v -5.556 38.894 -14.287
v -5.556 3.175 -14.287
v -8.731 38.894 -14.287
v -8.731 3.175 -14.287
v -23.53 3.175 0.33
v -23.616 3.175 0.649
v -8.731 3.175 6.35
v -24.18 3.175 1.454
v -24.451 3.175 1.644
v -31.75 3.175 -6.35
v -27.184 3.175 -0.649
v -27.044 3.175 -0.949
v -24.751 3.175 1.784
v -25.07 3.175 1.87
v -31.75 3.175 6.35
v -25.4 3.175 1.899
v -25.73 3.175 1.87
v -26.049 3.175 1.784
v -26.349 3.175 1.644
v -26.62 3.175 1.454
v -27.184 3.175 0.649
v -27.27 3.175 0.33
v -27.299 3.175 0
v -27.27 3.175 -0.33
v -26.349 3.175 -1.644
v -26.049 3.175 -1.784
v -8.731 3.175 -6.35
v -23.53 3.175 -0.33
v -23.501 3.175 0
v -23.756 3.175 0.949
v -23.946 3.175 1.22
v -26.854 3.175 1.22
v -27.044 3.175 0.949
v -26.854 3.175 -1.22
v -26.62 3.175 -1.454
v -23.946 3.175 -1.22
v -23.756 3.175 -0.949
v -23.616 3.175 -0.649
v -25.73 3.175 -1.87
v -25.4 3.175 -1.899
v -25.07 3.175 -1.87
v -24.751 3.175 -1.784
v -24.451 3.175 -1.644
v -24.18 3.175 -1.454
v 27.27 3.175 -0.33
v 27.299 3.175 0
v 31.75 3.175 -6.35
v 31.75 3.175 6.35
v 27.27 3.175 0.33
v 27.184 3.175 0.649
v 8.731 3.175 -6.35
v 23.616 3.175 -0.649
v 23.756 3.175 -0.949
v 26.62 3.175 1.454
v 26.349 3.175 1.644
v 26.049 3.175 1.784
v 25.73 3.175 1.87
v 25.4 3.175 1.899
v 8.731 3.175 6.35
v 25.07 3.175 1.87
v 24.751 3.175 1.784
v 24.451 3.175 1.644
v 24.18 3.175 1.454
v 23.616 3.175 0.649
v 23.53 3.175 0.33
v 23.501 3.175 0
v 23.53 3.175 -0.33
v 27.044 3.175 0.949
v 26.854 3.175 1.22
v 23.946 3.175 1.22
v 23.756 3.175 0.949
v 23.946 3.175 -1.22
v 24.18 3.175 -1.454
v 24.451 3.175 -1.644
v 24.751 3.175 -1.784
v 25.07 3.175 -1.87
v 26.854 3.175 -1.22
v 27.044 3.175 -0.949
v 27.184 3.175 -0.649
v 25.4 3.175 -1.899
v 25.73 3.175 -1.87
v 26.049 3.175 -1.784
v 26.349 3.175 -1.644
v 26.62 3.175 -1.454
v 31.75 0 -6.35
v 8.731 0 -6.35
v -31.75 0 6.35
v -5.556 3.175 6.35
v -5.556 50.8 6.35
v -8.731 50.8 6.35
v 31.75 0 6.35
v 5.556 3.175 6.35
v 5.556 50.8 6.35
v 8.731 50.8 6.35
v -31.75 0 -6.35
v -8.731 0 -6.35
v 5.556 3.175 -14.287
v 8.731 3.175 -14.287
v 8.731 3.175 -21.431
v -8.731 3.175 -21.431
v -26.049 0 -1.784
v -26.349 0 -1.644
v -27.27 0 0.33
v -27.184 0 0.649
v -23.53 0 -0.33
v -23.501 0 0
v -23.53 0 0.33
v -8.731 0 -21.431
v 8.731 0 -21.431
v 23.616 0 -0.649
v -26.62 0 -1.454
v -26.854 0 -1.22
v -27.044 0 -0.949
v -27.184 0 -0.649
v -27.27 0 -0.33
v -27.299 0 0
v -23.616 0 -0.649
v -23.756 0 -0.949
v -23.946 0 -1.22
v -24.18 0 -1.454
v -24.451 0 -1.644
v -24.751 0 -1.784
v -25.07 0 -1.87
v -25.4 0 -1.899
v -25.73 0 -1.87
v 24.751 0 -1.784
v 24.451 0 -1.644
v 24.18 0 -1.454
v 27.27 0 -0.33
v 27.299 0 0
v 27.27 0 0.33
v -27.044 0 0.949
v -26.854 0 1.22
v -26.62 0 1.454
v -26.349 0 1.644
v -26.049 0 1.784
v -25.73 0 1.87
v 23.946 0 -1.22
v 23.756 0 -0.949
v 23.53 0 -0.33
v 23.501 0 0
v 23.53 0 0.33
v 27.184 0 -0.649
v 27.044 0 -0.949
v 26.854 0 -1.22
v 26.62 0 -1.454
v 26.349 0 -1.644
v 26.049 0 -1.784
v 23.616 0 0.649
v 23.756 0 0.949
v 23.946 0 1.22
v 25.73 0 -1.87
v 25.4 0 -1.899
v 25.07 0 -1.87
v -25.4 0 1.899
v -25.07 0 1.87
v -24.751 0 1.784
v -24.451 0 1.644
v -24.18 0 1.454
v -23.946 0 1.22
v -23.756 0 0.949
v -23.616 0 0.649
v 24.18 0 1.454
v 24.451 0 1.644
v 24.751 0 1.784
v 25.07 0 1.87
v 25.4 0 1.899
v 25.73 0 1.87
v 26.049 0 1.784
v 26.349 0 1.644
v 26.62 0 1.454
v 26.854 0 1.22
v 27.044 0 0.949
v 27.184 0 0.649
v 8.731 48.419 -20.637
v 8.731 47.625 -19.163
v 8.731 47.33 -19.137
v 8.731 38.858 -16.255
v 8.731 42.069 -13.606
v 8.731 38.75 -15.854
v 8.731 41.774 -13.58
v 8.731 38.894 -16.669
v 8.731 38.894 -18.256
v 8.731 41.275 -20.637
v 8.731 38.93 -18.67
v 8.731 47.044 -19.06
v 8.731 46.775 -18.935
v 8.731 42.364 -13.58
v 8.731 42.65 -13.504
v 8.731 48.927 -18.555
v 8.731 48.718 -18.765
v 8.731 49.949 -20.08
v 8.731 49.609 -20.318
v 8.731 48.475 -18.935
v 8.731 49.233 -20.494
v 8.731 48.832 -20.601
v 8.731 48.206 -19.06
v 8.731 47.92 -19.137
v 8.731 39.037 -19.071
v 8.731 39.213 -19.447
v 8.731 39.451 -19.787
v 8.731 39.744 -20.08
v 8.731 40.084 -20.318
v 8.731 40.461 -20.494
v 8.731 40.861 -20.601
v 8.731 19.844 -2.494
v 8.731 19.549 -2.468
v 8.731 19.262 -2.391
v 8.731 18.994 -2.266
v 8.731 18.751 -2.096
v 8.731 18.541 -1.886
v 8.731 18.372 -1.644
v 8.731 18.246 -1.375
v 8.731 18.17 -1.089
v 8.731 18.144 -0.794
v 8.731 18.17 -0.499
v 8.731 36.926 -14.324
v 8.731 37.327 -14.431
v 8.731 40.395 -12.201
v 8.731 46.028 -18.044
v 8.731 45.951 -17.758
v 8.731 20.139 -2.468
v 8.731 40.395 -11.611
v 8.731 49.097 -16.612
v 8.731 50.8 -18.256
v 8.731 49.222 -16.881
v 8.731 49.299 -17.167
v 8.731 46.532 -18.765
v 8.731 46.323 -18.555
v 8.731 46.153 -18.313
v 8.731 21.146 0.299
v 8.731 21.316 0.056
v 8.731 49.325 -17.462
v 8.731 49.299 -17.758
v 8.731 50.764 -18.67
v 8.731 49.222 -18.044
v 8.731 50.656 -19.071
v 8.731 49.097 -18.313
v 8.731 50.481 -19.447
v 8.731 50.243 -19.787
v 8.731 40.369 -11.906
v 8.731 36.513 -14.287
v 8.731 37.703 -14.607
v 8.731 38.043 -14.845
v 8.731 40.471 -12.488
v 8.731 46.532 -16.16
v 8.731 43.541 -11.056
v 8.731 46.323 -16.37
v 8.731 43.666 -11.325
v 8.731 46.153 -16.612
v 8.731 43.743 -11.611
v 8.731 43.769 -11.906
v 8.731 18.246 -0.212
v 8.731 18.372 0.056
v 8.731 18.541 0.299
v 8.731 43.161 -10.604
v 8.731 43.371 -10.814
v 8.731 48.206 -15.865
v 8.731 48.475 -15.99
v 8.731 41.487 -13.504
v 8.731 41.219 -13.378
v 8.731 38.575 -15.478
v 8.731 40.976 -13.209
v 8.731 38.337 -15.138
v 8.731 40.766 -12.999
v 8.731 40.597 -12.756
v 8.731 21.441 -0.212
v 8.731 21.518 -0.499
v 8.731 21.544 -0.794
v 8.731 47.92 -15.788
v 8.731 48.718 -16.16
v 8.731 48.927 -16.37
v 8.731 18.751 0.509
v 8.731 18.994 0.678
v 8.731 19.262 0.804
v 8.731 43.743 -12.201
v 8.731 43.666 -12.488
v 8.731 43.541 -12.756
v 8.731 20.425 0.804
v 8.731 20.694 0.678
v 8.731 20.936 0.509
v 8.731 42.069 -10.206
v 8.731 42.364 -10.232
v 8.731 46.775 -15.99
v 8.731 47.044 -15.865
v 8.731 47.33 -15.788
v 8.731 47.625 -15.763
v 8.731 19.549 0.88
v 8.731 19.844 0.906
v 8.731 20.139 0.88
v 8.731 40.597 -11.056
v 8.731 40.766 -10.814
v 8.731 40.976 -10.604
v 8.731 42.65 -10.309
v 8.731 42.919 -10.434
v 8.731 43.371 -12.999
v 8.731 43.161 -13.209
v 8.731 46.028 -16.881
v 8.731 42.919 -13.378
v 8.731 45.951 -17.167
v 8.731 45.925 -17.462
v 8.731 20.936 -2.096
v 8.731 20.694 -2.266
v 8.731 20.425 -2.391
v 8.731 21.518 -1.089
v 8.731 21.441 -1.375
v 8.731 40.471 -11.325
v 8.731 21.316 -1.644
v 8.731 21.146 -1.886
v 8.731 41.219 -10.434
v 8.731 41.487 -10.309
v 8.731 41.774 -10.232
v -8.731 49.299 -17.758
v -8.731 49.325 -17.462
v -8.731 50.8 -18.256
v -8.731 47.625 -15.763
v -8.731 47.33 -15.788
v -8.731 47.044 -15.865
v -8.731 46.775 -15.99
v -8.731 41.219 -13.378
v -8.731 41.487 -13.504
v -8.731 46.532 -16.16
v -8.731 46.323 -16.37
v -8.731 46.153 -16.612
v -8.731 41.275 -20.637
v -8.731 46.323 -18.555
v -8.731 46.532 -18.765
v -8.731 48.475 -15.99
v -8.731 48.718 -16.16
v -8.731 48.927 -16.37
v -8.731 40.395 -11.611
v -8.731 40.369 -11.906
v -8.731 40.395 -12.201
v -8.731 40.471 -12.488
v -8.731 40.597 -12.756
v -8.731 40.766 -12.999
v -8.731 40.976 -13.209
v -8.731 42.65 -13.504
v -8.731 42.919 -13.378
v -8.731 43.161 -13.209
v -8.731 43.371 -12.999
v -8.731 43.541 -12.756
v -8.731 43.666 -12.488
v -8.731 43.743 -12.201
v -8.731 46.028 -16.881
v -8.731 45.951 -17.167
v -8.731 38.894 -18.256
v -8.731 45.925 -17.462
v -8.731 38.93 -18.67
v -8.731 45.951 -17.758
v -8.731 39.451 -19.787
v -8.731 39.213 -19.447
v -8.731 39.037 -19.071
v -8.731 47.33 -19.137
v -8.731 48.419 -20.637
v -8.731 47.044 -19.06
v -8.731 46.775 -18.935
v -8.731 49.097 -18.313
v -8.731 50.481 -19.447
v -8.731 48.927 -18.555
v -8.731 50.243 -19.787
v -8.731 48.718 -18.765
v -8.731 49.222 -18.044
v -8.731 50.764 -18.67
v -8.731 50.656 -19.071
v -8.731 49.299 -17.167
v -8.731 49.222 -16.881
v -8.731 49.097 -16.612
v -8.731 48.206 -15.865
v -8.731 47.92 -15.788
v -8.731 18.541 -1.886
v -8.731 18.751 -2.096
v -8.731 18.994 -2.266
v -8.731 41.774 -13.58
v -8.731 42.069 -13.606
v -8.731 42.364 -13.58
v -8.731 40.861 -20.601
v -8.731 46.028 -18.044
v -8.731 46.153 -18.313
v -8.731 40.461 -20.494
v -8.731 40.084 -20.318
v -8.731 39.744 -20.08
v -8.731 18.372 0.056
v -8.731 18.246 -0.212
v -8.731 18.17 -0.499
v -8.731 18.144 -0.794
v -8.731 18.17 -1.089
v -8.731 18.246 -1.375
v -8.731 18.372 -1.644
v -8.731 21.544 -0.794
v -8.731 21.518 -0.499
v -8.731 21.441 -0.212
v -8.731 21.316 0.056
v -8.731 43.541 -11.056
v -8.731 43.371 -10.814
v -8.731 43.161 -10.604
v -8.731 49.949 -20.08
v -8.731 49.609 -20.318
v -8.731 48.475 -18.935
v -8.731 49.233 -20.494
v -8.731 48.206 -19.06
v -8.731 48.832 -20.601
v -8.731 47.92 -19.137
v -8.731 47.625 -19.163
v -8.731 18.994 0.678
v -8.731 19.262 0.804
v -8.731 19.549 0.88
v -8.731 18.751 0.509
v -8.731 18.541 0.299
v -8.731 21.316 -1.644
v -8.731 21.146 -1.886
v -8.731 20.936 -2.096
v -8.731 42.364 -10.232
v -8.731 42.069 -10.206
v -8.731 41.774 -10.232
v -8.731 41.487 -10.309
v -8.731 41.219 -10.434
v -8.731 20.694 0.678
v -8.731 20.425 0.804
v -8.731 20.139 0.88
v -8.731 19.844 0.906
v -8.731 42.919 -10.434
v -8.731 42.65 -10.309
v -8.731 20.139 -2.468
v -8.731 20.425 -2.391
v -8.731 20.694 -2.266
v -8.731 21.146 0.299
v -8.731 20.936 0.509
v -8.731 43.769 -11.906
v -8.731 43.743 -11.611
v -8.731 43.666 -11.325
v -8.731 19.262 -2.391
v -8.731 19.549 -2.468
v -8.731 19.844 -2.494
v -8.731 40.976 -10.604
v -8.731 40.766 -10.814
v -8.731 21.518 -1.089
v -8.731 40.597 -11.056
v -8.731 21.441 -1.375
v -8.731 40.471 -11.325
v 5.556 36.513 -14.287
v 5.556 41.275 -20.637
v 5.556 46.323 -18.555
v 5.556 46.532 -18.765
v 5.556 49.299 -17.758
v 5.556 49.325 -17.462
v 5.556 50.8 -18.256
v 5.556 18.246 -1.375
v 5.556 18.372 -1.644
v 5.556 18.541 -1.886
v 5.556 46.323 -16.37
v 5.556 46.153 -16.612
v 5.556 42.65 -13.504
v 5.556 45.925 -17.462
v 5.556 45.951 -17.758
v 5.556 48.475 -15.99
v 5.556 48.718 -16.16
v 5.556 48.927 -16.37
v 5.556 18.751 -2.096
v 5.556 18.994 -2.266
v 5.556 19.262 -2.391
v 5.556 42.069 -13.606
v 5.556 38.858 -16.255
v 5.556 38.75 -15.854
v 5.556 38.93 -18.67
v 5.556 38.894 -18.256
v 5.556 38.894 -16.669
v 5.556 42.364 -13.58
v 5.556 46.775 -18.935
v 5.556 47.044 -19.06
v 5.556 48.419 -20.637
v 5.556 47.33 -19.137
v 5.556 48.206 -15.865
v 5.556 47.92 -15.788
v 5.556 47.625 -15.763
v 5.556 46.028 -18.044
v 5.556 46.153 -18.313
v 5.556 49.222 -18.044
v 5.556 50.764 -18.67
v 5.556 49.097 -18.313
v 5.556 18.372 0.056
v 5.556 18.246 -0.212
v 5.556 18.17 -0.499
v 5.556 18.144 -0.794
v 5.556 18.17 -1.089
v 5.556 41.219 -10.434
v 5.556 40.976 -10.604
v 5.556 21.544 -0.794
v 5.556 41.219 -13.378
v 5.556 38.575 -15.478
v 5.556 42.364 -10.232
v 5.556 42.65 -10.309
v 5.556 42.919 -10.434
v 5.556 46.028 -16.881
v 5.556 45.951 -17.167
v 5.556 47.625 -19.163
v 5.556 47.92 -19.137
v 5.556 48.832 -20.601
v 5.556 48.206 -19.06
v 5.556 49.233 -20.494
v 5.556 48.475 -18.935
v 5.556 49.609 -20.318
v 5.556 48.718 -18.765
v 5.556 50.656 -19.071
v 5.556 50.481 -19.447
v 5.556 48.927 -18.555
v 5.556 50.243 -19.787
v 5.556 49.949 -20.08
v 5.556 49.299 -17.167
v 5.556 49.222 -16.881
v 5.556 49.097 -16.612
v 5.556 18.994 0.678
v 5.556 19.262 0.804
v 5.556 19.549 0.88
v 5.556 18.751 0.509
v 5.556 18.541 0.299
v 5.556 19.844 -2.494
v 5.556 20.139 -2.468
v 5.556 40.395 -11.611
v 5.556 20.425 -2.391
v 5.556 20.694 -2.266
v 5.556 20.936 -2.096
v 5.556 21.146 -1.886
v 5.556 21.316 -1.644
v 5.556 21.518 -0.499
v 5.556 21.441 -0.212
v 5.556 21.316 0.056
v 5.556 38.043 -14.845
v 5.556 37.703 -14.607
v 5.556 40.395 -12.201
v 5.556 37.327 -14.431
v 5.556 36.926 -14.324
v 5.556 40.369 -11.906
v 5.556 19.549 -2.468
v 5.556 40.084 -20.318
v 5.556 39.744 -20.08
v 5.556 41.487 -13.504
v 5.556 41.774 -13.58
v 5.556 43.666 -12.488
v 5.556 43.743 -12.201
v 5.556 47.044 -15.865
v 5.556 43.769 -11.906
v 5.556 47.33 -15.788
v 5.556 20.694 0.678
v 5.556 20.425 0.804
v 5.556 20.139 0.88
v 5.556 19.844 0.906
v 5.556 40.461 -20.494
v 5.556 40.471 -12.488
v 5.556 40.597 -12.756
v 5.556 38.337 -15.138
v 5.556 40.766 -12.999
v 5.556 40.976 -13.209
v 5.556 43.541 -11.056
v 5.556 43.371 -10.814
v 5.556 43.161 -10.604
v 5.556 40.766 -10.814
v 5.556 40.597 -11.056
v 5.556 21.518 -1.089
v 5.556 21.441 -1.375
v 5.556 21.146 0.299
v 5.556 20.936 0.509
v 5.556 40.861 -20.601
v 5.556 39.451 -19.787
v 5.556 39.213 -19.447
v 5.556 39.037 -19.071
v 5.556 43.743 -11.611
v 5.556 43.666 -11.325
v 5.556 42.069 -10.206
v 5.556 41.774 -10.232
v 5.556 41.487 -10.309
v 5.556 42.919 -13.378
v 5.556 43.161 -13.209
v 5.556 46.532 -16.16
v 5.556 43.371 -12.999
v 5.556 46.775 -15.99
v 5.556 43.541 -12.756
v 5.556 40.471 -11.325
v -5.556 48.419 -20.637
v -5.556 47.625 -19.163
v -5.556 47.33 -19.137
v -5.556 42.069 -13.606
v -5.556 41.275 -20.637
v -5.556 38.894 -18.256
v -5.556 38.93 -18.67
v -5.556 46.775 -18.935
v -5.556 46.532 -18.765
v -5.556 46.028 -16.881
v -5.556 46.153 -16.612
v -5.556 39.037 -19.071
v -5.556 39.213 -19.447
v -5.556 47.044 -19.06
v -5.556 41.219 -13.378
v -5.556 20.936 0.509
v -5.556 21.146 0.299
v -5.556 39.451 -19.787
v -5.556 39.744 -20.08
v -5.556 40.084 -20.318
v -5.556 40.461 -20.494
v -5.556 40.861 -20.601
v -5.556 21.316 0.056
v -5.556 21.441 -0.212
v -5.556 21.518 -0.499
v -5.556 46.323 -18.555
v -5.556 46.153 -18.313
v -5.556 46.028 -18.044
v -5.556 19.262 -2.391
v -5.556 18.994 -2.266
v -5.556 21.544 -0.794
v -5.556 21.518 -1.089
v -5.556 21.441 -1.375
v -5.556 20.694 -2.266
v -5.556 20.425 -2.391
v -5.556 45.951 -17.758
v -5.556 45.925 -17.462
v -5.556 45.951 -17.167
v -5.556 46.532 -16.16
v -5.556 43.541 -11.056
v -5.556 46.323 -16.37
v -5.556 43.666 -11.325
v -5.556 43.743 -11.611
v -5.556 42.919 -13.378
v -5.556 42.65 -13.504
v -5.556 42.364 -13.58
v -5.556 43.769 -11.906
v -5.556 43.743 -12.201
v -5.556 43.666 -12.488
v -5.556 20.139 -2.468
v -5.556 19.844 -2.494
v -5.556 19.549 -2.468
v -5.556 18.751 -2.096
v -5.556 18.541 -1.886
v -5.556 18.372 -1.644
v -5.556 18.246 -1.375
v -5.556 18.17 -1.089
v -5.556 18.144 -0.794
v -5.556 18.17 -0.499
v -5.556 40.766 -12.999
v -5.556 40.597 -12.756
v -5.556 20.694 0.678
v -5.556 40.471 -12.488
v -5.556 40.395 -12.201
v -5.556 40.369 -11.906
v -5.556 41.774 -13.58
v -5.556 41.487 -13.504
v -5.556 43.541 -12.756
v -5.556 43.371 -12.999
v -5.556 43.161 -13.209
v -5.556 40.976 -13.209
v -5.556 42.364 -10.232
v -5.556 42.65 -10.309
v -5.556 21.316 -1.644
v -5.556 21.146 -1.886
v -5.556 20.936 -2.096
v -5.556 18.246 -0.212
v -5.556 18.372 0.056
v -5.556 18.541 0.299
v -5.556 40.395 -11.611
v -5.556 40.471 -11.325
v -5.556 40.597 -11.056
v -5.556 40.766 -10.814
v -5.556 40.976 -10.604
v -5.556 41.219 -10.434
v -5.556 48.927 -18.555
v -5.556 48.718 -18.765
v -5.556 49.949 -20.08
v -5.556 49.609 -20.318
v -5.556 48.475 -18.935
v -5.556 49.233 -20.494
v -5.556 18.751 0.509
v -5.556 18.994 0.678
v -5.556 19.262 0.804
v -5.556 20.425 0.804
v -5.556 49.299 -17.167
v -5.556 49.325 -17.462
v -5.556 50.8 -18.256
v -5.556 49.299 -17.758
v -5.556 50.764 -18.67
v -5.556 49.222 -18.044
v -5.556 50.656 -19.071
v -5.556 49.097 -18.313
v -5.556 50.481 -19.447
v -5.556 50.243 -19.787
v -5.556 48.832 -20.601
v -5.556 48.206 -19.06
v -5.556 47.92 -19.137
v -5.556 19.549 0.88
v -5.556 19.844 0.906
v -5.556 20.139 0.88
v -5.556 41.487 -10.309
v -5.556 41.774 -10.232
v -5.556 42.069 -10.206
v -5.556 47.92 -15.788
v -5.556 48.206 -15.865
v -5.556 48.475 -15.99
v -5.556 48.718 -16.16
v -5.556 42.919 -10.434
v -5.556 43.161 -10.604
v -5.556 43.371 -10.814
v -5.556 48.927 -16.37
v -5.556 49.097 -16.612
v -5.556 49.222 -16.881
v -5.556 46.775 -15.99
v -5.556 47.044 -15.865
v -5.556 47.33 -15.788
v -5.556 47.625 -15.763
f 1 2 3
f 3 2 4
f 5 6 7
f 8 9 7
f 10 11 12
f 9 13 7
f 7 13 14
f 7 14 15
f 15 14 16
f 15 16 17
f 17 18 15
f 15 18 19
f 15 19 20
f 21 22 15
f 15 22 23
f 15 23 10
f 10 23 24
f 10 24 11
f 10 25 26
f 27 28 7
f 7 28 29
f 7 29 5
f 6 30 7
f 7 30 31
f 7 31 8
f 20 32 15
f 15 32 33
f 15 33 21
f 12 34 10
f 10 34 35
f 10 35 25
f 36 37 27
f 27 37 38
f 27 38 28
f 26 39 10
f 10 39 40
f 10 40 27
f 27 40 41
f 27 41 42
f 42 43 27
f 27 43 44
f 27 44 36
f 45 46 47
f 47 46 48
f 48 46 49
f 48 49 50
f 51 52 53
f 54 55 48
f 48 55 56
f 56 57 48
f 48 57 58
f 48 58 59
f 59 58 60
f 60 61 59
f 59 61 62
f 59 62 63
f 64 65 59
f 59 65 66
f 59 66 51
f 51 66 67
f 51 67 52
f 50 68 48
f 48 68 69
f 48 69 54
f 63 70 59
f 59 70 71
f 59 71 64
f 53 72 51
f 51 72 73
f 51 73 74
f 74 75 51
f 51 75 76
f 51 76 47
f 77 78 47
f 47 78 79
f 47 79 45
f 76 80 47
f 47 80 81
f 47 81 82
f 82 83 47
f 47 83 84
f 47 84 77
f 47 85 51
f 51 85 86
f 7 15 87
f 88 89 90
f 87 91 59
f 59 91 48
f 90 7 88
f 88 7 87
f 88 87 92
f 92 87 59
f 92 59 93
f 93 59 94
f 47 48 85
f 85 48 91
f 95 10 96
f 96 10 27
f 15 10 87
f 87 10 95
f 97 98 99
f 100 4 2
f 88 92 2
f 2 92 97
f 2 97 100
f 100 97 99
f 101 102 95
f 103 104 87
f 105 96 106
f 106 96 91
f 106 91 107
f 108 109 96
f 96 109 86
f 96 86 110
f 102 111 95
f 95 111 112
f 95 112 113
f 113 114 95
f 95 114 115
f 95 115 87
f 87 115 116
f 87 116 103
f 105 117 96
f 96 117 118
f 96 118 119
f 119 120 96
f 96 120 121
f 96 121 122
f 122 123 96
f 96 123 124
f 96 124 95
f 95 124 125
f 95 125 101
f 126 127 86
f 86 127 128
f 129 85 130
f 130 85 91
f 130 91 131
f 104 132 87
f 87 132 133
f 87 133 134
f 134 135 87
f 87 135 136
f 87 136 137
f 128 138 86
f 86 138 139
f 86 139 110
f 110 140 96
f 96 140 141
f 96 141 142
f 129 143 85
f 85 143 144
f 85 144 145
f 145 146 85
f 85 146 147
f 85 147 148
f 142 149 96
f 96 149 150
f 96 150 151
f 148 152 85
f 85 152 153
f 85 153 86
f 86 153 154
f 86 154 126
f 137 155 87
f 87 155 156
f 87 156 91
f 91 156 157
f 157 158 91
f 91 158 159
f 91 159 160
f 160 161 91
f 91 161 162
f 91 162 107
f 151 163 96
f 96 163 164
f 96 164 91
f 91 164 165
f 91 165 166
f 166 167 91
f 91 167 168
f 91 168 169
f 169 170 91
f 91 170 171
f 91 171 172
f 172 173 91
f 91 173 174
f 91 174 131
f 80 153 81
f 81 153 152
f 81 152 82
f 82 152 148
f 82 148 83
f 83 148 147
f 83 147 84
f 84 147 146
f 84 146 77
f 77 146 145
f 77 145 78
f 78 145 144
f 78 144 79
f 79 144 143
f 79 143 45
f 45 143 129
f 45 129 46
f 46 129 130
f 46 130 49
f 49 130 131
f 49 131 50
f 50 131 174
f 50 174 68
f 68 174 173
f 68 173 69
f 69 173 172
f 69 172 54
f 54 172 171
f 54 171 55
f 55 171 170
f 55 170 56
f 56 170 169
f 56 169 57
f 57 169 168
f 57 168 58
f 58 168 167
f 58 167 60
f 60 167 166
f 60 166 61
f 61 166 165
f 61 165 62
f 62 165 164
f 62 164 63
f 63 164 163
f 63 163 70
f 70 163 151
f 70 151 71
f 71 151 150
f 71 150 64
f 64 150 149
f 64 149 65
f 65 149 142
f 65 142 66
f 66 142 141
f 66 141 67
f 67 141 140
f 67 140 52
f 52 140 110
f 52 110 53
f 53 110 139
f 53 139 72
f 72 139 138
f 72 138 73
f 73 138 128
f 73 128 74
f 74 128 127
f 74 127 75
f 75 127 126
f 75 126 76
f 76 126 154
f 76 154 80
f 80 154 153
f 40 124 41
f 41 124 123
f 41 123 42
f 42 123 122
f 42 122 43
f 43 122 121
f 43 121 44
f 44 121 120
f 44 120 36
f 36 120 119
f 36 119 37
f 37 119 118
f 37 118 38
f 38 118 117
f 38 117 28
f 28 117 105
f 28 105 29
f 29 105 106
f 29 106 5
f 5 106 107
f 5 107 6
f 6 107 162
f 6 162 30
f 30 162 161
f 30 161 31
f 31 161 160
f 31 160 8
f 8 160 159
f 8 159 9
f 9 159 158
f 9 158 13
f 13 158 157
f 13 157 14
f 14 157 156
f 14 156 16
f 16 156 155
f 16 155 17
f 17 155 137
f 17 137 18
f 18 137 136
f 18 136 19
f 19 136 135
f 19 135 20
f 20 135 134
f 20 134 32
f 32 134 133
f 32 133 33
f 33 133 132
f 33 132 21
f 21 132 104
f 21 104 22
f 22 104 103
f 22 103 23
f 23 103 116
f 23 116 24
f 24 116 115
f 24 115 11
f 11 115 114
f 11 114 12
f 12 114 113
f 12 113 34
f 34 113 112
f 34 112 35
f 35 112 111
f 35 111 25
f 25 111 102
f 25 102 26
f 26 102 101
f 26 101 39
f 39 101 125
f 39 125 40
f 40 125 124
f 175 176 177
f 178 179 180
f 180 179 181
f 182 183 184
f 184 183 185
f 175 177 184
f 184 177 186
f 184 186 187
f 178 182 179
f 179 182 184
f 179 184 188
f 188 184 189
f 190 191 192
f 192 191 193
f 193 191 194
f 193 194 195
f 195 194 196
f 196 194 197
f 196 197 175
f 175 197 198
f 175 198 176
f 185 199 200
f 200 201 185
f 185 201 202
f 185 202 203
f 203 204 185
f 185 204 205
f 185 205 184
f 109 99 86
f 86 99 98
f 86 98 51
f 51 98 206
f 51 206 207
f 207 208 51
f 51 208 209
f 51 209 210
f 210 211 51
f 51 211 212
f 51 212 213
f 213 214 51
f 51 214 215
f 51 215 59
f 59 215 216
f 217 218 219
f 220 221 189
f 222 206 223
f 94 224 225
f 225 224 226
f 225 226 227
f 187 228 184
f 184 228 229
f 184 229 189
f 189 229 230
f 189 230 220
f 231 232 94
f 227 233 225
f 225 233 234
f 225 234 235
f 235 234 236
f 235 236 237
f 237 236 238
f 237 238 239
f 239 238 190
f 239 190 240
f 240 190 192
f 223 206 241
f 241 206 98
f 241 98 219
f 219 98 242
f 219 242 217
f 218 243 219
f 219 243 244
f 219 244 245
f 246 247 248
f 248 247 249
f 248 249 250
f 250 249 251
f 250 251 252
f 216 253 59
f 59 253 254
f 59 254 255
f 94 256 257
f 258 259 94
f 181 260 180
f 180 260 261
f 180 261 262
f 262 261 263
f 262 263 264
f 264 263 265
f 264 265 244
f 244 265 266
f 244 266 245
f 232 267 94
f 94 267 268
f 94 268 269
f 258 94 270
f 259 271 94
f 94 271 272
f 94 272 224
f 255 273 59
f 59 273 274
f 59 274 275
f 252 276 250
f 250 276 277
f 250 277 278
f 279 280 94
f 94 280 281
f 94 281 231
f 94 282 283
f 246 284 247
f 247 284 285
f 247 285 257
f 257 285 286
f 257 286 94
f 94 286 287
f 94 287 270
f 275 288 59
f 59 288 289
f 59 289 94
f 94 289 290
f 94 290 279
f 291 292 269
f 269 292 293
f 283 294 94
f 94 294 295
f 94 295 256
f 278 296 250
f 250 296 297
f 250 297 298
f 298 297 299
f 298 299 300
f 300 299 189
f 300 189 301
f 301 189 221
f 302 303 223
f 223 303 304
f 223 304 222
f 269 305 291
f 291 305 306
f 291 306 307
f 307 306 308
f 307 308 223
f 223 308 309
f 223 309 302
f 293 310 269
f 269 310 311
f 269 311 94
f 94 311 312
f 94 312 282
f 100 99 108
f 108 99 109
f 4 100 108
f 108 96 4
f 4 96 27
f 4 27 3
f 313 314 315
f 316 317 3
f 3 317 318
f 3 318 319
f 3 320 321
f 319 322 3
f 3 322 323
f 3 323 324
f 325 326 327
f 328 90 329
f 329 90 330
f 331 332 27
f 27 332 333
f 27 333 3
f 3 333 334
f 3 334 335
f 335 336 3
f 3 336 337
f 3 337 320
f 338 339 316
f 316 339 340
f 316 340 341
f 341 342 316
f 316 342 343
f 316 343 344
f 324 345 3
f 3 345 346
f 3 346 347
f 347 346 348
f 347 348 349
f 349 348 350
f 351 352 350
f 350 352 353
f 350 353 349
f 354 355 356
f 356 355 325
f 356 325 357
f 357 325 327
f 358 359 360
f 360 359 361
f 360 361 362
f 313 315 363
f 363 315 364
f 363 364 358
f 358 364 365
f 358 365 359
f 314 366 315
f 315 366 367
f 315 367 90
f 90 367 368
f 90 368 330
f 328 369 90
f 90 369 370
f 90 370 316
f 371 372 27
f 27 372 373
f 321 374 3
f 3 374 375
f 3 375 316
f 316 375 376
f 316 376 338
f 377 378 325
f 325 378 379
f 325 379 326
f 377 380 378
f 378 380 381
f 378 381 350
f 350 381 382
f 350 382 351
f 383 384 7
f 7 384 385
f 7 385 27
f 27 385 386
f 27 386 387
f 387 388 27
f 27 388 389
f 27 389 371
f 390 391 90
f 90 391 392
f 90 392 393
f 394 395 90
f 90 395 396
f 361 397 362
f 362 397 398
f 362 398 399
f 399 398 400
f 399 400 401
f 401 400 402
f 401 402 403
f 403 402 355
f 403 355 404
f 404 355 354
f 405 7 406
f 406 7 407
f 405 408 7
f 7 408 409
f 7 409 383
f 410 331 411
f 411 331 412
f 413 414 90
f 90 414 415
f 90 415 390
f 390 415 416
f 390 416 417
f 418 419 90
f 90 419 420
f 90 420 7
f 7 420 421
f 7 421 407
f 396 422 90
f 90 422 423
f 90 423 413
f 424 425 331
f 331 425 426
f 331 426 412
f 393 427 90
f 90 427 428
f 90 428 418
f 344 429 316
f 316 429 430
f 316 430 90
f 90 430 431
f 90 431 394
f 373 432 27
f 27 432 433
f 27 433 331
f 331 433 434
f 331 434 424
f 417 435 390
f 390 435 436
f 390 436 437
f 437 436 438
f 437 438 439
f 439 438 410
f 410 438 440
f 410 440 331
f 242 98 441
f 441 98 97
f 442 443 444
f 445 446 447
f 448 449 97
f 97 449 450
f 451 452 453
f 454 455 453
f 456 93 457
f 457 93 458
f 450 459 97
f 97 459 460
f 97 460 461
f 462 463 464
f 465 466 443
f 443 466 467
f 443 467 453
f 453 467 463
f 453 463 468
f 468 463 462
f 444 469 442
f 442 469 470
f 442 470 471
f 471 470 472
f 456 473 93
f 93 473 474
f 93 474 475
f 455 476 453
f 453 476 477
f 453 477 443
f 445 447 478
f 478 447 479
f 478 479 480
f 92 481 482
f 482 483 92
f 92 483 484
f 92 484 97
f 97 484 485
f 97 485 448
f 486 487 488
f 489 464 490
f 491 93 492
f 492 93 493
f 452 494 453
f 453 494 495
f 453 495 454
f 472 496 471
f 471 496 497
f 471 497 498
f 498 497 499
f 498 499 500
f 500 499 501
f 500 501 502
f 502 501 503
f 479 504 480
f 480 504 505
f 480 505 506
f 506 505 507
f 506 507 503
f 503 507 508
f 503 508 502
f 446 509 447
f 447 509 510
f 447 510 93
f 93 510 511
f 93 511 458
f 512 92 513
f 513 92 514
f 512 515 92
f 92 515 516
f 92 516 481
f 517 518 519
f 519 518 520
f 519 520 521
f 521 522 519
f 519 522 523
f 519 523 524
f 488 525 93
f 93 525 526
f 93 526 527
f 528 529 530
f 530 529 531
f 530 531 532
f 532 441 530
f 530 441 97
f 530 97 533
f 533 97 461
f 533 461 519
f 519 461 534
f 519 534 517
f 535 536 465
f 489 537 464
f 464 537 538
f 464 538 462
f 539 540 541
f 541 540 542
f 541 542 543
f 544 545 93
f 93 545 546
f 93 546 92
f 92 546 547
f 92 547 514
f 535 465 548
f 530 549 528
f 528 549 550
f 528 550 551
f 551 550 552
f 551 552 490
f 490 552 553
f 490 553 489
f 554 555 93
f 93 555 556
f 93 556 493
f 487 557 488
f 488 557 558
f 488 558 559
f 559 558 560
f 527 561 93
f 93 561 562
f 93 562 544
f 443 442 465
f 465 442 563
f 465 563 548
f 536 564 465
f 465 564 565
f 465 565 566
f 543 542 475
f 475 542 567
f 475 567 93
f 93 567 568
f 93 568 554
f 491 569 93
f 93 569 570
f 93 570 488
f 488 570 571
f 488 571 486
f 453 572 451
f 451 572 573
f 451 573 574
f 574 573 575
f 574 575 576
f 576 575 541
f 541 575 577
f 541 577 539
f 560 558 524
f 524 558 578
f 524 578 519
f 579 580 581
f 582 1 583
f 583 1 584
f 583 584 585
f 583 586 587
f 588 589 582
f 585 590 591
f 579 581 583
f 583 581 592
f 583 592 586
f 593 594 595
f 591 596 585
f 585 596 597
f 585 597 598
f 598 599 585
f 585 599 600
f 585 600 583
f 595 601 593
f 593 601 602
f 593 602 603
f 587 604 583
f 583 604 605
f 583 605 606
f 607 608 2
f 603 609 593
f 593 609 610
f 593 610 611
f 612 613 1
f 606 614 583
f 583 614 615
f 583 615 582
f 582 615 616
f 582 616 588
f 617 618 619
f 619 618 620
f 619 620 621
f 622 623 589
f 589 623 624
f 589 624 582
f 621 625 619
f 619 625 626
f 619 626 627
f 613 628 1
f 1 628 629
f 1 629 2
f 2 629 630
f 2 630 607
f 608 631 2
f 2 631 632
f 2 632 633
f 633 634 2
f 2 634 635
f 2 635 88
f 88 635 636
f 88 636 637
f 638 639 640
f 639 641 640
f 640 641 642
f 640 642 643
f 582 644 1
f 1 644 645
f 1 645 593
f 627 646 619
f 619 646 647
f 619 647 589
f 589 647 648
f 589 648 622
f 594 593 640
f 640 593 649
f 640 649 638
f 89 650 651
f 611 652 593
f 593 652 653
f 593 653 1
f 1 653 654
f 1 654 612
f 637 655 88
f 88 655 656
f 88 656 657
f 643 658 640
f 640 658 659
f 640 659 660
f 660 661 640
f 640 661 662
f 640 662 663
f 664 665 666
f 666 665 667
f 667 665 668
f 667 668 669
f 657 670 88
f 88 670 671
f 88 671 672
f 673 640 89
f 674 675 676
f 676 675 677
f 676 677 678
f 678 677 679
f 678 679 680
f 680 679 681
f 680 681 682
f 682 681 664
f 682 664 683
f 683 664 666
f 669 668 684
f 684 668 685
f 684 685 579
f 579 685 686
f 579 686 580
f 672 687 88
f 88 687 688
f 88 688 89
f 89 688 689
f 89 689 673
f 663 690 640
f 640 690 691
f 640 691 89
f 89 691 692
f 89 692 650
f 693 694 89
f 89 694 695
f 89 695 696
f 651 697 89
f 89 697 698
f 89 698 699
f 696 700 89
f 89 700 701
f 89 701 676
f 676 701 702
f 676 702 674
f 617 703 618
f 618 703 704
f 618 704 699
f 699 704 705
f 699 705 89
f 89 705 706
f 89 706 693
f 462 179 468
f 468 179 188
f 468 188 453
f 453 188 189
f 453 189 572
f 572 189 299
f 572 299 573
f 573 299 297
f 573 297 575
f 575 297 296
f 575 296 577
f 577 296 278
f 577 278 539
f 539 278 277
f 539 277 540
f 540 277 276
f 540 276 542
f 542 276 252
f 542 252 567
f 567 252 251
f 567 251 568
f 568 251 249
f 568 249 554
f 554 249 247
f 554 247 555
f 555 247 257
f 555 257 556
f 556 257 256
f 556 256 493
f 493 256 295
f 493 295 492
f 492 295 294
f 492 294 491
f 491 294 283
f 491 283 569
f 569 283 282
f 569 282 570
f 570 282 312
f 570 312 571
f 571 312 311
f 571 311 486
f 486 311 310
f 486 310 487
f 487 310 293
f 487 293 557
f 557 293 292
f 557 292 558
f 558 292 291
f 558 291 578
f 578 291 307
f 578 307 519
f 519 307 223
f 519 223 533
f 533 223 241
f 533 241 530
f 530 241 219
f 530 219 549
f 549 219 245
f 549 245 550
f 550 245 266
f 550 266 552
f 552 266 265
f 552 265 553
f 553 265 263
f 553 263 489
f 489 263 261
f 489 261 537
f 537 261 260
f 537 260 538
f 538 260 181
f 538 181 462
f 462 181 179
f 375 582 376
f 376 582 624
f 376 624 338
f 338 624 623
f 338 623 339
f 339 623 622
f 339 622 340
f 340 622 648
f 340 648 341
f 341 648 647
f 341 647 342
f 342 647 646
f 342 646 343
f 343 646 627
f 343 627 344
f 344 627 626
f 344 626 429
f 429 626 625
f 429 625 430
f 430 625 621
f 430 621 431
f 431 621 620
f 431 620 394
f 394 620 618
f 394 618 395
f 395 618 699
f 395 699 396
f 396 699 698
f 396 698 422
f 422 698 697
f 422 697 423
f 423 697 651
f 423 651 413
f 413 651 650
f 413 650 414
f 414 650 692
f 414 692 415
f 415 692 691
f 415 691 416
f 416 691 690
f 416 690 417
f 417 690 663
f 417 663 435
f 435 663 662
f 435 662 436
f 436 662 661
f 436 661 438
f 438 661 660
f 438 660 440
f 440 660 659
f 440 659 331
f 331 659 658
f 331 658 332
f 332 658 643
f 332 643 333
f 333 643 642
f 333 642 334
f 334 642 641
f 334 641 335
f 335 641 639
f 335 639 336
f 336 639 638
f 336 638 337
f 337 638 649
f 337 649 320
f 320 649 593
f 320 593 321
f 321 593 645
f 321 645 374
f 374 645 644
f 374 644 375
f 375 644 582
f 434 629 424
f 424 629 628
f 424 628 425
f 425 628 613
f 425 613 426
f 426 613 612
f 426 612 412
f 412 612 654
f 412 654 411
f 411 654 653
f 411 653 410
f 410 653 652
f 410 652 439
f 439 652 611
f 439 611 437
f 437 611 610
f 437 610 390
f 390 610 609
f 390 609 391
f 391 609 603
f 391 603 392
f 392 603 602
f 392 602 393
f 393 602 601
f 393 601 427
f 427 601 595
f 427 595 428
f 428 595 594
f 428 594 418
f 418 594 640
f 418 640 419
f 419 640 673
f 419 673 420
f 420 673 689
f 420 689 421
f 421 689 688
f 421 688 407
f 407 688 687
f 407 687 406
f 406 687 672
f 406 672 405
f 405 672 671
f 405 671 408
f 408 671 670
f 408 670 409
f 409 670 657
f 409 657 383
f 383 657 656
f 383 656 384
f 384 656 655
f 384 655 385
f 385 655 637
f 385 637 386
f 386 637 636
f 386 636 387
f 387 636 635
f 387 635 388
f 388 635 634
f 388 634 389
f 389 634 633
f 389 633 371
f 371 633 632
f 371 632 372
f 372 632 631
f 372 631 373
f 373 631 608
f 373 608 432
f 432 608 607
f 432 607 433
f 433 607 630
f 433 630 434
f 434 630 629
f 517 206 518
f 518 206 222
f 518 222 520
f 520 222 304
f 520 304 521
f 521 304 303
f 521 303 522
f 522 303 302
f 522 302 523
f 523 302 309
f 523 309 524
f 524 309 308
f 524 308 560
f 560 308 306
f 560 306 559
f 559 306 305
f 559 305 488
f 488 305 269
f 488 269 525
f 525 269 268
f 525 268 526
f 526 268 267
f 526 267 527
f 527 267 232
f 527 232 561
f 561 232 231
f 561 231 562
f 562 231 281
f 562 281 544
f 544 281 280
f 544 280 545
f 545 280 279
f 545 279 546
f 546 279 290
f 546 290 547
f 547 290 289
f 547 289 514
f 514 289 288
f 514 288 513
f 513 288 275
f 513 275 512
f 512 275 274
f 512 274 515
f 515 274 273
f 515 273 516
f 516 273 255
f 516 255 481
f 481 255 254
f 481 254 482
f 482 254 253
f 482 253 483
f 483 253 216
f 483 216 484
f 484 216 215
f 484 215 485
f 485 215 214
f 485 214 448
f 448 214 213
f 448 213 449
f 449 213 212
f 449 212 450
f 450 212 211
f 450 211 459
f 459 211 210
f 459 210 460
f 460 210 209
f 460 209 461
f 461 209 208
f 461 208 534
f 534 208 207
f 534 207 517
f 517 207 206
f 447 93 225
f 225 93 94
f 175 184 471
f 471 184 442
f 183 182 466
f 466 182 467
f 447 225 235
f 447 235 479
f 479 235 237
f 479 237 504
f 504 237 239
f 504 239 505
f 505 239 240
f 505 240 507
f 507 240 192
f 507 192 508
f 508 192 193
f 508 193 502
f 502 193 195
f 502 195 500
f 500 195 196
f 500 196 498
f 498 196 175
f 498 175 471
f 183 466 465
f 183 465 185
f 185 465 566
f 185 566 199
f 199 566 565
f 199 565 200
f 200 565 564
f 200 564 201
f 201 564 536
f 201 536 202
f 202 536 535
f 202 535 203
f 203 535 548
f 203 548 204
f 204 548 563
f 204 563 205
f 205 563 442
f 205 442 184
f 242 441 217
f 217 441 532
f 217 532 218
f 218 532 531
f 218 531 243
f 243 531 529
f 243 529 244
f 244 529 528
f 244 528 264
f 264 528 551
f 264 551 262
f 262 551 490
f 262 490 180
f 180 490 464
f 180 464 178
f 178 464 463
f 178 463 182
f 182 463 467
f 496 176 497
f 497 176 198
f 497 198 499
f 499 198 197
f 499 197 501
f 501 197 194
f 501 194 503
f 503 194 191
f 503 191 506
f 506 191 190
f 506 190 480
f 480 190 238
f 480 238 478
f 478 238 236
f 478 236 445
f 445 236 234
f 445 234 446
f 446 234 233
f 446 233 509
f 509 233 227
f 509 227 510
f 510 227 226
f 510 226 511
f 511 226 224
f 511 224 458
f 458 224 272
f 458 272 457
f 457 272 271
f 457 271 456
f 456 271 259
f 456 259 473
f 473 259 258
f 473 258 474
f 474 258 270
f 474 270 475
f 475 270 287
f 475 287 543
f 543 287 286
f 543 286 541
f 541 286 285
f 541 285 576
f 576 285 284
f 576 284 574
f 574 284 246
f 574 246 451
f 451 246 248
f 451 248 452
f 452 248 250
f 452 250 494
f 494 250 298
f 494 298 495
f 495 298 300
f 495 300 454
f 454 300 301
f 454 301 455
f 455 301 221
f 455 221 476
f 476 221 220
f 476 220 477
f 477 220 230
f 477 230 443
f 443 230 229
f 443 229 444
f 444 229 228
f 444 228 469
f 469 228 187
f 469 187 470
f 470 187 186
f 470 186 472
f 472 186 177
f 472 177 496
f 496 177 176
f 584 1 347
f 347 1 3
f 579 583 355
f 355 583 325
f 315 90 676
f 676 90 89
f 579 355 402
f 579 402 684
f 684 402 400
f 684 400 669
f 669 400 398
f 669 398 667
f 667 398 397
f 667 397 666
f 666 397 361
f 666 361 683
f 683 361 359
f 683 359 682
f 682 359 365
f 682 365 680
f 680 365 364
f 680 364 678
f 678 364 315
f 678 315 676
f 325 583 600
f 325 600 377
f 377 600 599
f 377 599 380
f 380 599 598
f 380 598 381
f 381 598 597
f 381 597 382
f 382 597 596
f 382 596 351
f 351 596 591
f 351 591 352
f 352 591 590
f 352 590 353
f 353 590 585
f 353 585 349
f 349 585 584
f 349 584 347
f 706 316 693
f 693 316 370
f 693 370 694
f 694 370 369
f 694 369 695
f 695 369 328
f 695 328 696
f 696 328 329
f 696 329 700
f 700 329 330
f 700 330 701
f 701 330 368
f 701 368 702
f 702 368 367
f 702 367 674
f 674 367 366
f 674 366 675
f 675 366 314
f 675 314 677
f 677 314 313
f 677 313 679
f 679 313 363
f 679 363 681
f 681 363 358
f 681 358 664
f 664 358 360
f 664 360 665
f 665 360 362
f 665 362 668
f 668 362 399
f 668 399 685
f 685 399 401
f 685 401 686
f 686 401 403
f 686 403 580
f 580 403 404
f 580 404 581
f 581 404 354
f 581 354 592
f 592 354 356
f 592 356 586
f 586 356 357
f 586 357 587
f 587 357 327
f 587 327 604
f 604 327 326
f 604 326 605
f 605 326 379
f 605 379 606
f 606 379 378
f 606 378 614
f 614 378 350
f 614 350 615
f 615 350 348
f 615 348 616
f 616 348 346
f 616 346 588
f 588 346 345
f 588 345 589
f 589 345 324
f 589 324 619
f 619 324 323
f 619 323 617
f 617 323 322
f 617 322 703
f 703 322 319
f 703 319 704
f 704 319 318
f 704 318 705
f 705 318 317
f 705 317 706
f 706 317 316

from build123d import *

# Parameters (mm, degrees)
SKETCH1_W             = 63.5
SKETCH1_H             = 6.35
BOSS_EXTRUDE1_DEPTH   = 3.175
F_6_CLEARANCE_HOLE1_D = 3.7973
SKETCH7_W             = 17.4625
SKETCH7_H             = 27.78125
BOSS_EXTRUDE2_DEPTH   = 3.175
SKETCH9_W             = 3.175
SKETCH9_H             = 20.6375
BOSS_EXTRUDE3_DEPTH   = 44.45
M3_CLEARANCE_HOLE1_D  = 3.4
SKETCH14_W            = 20.6375
SKETCH14_H            = 6.35
BOSS_EXTRUDE4_DEPTH   = 3.175
FILLET3_R             = 2.38125
M3_CLEARANCE_HOLE2_D  = 3.4
MIRROR1_START         = -8.73125
MIRROR1_OUTLINE_R     = 1.7
MIRROR1_DEPTH         = 3.175


# Read off the part's stored shape, not the designer's step: Mirror1
with BuildPart() as part:
    # Sketch1 → Boss-Extrude1 (new body)
    with BuildSketch(Plane(origin=(0, 0, 0), x_dir=(1, 0, 0), z_dir=(0, 1, 0))):
        with Locations((0, -3.175)):
            Rectangle(SKETCH1_W, SKETCH1_H)
        with Locations((0, 3.175)):
            Rectangle(SKETCH1_W, SKETCH1_H)
    extrude(amount=BOSS_EXTRUDE1_DEPTH)

    # #6 Clearance Hole1 (through all)
    with Locations(Plane(origin=(0, 0, 0), x_dir=(-1, 0, 0), z_dir=(0, -1, 0))):
        with Locations((25.4, 0), (-25.4, 0)):
            Hole(F_6_CLEARANCE_HOLE1_D / 2)

    # Sketch7 → Boss-Extrude2 (add)
    with BuildSketch(Plane.XZ):
        with Locations((0, -7.540625)):
            Rectangle(SKETCH7_W, SKETCH7_H)
    extrude(amount=-BOSS_EXTRUDE2_DEPTH)

    # Sketch9 → Boss-Extrude3 (add)
    with BuildSketch(Plane.XZ):
        with Locations((7.14375, -3.96875)):
            Rectangle(SKETCH9_W, SKETCH9_H)
        with Locations((-7.14375, -3.96875)):
            Rectangle(SKETCH9_W, SKETCH9_H)
    extrude(amount=-BOSS_EXTRUDE3_DEPTH)

    # M3 Clearance Hole1 (through all)
    with Locations(Plane(origin=(8.73125, 0, 0), x_dir=(0, 0, -1), z_dir=(1, 0, 0))):
        with Locations((0.79375, 19.84375), (11.90625, 42.06875)):
            Hole(M3_CLEARANCE_HOLE1_D / 2)

    # Sketch14 → Boss-Extrude4 (add)
    with BuildSketch(Plane(origin=(8.73125, 0, 0), x_dir=(0, 0, -1), z_dir=(1, 0, 0))):
        with Locations((3.96875, 47.625)):
            Rectangle(SKETCH14_W, SKETCH14_H)
        Polygon((14.2875, 50.8), (14.2875, 44.45), (14.2875, 38.89375), (20.6375, 38.89375), (20.6375, 50.8), align=None)
    extrude(amount=-BOSS_EXTRUDE4_DEPTH)

    # Fillet3
    fillet3_edges = [part.edges().sort_by_distance(p)[0] for p in [
        (7.14375, 50.8, -20.6375),
        (7.14375, 38.89375, -20.6375),
        (7.14375, 38.89375, -14.2875),
    ]]
    fillet(fillet3_edges, radius=FILLET3_R)

    # M3 Clearance Hole2 (through all)
    with Locations(Plane(origin=(8.73125, 0, 0), x_dir=(0, 0, -1), z_dir=(1, 0, 0))):
        with Locations((17.4625, 47.625)):
            Hole(M3_CLEARANCE_HOLE2_D / 2)

    # Mirror1 outline → Mirror1 (add)
    with BuildSketch(Plane.YZ.offset(MIRROR1_START)):
        with BuildLine():
            ThreePointArc((48.41875, -20.6375), (50.102548023, -19.940048023), (50.8, -18.25625))
            Line((50.8, -18.25625), (50.8, 6.35))
            Line((50.8, 6.35), (44.45, 6.35))
            Line((44.45, 6.35), (44.45, -14.2875))
            Line((44.45, -14.2875), (38.89375, -14.2875))
            Line((38.89375, -14.2875), (38.89375, -18.25625))
            ThreePointArc((38.89375, -18.25625), (39.591201977, -19.940048023), (41.275, -20.6375))
            Line((41.275, -20.6375), (48.41875, -20.6375))
        make_face()
        with Locations((47.625, -17.4625)):
            Circle(MIRROR1_OUTLINE_R, mode=Mode.SUBTRACT)
    extrude(amount=MIRROR1_DEPTH)


solid = part.part
